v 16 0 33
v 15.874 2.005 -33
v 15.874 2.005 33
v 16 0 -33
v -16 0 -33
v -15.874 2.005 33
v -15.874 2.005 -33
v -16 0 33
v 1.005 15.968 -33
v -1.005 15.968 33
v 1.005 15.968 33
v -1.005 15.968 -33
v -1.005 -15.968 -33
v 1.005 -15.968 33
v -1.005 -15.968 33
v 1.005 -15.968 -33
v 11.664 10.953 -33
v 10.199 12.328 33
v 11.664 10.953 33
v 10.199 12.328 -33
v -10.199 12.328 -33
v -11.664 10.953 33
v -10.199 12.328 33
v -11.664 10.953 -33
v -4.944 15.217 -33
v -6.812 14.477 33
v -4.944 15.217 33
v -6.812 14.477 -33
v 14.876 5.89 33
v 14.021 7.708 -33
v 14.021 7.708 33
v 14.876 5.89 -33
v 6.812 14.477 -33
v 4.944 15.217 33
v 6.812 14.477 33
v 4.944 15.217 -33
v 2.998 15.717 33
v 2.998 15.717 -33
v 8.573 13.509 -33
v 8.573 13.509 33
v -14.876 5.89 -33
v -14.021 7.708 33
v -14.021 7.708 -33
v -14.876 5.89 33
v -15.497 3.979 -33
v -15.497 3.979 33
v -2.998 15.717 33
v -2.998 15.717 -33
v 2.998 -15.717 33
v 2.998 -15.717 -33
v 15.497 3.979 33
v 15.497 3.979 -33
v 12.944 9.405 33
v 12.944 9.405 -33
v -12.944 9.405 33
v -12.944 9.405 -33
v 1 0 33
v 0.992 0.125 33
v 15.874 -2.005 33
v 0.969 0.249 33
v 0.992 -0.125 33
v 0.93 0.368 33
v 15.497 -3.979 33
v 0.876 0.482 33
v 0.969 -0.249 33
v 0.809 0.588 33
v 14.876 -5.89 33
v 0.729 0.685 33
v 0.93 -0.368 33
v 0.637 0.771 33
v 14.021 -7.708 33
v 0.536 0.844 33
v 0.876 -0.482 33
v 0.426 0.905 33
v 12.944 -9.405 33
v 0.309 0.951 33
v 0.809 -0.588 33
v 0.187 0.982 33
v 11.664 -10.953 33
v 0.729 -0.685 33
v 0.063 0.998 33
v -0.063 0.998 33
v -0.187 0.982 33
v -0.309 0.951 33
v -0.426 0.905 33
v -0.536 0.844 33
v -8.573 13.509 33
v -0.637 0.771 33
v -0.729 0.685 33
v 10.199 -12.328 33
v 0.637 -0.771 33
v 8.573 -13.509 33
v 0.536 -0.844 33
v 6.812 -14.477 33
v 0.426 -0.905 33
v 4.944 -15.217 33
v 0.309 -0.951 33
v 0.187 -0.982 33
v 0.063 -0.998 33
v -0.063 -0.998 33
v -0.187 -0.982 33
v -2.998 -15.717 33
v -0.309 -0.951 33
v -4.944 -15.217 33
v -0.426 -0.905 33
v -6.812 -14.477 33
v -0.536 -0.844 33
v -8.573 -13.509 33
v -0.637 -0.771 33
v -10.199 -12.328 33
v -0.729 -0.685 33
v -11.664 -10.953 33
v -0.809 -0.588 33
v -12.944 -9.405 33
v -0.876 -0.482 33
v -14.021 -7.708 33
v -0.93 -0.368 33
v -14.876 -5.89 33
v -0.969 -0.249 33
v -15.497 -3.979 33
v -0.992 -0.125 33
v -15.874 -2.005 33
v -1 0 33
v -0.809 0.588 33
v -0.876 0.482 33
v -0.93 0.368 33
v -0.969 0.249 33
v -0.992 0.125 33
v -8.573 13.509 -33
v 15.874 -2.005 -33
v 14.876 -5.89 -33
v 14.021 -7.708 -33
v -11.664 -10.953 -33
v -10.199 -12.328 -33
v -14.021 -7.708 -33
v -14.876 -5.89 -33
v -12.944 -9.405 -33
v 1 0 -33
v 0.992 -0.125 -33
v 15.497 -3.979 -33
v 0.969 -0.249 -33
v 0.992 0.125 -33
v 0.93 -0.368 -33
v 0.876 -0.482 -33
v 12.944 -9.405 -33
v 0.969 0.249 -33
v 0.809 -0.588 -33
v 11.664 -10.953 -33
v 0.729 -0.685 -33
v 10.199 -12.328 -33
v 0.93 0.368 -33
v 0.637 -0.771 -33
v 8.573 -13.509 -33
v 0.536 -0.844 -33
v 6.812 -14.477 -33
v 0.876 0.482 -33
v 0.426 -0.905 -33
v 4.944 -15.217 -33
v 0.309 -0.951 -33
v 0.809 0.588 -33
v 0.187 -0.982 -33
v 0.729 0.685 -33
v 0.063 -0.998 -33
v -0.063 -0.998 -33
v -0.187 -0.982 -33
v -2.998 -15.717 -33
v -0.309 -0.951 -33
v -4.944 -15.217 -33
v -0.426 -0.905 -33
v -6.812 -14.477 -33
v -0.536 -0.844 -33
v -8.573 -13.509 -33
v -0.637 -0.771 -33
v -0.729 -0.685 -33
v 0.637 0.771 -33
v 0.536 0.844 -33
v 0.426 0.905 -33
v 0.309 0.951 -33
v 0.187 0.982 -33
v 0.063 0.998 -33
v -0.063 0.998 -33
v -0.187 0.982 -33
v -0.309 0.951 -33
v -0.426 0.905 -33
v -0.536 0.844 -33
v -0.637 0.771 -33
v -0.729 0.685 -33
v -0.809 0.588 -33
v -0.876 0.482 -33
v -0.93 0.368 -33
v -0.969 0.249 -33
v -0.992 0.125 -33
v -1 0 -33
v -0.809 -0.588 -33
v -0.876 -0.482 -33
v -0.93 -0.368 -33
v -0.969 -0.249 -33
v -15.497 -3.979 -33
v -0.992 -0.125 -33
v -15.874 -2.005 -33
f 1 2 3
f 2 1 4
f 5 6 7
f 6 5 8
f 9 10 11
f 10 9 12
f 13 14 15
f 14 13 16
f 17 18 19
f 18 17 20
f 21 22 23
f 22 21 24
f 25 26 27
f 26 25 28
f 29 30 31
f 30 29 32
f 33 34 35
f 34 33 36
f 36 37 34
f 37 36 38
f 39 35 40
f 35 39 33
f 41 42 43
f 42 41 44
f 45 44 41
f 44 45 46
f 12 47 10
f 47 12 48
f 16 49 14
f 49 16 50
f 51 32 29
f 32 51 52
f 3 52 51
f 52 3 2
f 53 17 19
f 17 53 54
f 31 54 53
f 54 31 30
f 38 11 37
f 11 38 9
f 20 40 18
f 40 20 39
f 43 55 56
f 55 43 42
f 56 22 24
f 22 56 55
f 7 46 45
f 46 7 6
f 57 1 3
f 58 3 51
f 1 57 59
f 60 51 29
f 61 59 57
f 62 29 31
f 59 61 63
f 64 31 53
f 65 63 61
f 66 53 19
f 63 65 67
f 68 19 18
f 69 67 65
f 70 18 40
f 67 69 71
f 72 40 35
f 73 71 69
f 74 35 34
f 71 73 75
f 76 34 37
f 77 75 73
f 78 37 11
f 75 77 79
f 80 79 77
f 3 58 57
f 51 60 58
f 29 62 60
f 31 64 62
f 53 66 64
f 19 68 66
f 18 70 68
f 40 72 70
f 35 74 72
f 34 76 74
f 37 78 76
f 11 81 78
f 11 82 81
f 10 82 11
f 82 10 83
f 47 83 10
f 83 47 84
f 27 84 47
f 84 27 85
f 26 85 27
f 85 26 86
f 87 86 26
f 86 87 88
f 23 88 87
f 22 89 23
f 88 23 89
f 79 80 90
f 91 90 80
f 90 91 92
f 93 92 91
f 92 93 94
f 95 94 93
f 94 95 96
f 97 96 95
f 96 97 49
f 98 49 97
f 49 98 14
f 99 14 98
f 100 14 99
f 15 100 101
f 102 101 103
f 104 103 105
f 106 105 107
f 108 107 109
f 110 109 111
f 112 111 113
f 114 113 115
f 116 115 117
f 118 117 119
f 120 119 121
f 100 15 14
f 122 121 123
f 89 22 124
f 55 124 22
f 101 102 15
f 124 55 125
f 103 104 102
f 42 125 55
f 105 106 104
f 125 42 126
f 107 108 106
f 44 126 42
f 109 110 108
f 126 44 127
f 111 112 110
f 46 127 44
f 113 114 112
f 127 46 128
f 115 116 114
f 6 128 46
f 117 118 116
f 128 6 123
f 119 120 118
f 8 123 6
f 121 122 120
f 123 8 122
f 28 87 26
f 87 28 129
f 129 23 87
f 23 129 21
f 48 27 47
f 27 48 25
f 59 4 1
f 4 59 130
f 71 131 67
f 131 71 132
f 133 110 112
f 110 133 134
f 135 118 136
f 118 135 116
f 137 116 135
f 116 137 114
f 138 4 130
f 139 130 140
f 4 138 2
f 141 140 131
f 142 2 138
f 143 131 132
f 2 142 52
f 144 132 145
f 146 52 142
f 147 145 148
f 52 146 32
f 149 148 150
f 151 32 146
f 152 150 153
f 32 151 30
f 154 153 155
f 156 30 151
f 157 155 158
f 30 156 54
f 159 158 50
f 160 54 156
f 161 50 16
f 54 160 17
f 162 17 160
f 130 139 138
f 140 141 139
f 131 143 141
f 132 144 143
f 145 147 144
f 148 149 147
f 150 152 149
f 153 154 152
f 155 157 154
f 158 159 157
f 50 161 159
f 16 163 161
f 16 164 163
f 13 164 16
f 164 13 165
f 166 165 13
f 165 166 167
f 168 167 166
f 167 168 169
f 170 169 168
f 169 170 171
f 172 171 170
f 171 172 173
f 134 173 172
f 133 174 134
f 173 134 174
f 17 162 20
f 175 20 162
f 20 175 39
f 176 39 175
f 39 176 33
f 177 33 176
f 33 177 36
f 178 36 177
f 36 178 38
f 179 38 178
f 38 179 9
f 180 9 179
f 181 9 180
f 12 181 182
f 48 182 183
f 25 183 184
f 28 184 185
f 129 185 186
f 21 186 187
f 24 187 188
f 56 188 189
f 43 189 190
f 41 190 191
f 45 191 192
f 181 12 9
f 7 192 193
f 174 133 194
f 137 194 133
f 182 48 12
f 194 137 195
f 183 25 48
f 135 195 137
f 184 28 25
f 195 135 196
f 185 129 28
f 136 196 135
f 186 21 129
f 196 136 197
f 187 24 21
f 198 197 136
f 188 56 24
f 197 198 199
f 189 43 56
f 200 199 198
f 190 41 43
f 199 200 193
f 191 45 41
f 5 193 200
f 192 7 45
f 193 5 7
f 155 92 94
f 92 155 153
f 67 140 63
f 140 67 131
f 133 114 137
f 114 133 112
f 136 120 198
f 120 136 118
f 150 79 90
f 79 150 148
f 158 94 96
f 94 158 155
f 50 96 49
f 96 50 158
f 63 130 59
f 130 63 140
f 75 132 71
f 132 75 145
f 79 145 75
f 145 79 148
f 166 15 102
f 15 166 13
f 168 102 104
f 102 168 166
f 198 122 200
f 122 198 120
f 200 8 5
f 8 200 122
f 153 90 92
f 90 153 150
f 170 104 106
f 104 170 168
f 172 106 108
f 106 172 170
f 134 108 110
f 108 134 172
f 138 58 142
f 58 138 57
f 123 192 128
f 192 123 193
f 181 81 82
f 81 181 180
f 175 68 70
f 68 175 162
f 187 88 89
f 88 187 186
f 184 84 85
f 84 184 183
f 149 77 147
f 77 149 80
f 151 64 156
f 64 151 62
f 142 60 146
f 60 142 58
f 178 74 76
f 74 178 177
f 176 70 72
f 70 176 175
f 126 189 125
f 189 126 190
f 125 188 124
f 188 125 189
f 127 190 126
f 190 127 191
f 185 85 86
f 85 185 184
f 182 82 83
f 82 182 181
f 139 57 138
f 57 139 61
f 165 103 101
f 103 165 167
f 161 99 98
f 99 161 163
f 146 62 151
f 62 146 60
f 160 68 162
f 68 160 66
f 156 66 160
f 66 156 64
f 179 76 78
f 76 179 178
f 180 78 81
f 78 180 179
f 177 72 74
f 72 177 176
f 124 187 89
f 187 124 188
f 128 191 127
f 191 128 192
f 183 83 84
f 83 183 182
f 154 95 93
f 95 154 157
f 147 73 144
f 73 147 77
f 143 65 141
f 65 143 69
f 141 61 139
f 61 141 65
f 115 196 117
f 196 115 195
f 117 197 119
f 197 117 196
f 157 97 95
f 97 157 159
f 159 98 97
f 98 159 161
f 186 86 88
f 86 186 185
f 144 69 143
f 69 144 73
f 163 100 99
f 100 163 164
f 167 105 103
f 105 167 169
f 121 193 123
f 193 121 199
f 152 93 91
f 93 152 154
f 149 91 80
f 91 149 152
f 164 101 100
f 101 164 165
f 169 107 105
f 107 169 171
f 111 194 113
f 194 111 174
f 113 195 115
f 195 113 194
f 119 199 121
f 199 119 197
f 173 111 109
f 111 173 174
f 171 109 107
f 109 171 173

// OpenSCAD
$fn = 50;


difference() {
	union() {
		translate(v = [0, 0, -33.0000000000]) {
			cylinder(h = 66, r = 16.0000000000);
		}
	}
	union() {
		translate(v = [0, 0, -100.0000000000]) {
			cylinder(h = 200, r = 1.0000000000);
		}
	}
}
